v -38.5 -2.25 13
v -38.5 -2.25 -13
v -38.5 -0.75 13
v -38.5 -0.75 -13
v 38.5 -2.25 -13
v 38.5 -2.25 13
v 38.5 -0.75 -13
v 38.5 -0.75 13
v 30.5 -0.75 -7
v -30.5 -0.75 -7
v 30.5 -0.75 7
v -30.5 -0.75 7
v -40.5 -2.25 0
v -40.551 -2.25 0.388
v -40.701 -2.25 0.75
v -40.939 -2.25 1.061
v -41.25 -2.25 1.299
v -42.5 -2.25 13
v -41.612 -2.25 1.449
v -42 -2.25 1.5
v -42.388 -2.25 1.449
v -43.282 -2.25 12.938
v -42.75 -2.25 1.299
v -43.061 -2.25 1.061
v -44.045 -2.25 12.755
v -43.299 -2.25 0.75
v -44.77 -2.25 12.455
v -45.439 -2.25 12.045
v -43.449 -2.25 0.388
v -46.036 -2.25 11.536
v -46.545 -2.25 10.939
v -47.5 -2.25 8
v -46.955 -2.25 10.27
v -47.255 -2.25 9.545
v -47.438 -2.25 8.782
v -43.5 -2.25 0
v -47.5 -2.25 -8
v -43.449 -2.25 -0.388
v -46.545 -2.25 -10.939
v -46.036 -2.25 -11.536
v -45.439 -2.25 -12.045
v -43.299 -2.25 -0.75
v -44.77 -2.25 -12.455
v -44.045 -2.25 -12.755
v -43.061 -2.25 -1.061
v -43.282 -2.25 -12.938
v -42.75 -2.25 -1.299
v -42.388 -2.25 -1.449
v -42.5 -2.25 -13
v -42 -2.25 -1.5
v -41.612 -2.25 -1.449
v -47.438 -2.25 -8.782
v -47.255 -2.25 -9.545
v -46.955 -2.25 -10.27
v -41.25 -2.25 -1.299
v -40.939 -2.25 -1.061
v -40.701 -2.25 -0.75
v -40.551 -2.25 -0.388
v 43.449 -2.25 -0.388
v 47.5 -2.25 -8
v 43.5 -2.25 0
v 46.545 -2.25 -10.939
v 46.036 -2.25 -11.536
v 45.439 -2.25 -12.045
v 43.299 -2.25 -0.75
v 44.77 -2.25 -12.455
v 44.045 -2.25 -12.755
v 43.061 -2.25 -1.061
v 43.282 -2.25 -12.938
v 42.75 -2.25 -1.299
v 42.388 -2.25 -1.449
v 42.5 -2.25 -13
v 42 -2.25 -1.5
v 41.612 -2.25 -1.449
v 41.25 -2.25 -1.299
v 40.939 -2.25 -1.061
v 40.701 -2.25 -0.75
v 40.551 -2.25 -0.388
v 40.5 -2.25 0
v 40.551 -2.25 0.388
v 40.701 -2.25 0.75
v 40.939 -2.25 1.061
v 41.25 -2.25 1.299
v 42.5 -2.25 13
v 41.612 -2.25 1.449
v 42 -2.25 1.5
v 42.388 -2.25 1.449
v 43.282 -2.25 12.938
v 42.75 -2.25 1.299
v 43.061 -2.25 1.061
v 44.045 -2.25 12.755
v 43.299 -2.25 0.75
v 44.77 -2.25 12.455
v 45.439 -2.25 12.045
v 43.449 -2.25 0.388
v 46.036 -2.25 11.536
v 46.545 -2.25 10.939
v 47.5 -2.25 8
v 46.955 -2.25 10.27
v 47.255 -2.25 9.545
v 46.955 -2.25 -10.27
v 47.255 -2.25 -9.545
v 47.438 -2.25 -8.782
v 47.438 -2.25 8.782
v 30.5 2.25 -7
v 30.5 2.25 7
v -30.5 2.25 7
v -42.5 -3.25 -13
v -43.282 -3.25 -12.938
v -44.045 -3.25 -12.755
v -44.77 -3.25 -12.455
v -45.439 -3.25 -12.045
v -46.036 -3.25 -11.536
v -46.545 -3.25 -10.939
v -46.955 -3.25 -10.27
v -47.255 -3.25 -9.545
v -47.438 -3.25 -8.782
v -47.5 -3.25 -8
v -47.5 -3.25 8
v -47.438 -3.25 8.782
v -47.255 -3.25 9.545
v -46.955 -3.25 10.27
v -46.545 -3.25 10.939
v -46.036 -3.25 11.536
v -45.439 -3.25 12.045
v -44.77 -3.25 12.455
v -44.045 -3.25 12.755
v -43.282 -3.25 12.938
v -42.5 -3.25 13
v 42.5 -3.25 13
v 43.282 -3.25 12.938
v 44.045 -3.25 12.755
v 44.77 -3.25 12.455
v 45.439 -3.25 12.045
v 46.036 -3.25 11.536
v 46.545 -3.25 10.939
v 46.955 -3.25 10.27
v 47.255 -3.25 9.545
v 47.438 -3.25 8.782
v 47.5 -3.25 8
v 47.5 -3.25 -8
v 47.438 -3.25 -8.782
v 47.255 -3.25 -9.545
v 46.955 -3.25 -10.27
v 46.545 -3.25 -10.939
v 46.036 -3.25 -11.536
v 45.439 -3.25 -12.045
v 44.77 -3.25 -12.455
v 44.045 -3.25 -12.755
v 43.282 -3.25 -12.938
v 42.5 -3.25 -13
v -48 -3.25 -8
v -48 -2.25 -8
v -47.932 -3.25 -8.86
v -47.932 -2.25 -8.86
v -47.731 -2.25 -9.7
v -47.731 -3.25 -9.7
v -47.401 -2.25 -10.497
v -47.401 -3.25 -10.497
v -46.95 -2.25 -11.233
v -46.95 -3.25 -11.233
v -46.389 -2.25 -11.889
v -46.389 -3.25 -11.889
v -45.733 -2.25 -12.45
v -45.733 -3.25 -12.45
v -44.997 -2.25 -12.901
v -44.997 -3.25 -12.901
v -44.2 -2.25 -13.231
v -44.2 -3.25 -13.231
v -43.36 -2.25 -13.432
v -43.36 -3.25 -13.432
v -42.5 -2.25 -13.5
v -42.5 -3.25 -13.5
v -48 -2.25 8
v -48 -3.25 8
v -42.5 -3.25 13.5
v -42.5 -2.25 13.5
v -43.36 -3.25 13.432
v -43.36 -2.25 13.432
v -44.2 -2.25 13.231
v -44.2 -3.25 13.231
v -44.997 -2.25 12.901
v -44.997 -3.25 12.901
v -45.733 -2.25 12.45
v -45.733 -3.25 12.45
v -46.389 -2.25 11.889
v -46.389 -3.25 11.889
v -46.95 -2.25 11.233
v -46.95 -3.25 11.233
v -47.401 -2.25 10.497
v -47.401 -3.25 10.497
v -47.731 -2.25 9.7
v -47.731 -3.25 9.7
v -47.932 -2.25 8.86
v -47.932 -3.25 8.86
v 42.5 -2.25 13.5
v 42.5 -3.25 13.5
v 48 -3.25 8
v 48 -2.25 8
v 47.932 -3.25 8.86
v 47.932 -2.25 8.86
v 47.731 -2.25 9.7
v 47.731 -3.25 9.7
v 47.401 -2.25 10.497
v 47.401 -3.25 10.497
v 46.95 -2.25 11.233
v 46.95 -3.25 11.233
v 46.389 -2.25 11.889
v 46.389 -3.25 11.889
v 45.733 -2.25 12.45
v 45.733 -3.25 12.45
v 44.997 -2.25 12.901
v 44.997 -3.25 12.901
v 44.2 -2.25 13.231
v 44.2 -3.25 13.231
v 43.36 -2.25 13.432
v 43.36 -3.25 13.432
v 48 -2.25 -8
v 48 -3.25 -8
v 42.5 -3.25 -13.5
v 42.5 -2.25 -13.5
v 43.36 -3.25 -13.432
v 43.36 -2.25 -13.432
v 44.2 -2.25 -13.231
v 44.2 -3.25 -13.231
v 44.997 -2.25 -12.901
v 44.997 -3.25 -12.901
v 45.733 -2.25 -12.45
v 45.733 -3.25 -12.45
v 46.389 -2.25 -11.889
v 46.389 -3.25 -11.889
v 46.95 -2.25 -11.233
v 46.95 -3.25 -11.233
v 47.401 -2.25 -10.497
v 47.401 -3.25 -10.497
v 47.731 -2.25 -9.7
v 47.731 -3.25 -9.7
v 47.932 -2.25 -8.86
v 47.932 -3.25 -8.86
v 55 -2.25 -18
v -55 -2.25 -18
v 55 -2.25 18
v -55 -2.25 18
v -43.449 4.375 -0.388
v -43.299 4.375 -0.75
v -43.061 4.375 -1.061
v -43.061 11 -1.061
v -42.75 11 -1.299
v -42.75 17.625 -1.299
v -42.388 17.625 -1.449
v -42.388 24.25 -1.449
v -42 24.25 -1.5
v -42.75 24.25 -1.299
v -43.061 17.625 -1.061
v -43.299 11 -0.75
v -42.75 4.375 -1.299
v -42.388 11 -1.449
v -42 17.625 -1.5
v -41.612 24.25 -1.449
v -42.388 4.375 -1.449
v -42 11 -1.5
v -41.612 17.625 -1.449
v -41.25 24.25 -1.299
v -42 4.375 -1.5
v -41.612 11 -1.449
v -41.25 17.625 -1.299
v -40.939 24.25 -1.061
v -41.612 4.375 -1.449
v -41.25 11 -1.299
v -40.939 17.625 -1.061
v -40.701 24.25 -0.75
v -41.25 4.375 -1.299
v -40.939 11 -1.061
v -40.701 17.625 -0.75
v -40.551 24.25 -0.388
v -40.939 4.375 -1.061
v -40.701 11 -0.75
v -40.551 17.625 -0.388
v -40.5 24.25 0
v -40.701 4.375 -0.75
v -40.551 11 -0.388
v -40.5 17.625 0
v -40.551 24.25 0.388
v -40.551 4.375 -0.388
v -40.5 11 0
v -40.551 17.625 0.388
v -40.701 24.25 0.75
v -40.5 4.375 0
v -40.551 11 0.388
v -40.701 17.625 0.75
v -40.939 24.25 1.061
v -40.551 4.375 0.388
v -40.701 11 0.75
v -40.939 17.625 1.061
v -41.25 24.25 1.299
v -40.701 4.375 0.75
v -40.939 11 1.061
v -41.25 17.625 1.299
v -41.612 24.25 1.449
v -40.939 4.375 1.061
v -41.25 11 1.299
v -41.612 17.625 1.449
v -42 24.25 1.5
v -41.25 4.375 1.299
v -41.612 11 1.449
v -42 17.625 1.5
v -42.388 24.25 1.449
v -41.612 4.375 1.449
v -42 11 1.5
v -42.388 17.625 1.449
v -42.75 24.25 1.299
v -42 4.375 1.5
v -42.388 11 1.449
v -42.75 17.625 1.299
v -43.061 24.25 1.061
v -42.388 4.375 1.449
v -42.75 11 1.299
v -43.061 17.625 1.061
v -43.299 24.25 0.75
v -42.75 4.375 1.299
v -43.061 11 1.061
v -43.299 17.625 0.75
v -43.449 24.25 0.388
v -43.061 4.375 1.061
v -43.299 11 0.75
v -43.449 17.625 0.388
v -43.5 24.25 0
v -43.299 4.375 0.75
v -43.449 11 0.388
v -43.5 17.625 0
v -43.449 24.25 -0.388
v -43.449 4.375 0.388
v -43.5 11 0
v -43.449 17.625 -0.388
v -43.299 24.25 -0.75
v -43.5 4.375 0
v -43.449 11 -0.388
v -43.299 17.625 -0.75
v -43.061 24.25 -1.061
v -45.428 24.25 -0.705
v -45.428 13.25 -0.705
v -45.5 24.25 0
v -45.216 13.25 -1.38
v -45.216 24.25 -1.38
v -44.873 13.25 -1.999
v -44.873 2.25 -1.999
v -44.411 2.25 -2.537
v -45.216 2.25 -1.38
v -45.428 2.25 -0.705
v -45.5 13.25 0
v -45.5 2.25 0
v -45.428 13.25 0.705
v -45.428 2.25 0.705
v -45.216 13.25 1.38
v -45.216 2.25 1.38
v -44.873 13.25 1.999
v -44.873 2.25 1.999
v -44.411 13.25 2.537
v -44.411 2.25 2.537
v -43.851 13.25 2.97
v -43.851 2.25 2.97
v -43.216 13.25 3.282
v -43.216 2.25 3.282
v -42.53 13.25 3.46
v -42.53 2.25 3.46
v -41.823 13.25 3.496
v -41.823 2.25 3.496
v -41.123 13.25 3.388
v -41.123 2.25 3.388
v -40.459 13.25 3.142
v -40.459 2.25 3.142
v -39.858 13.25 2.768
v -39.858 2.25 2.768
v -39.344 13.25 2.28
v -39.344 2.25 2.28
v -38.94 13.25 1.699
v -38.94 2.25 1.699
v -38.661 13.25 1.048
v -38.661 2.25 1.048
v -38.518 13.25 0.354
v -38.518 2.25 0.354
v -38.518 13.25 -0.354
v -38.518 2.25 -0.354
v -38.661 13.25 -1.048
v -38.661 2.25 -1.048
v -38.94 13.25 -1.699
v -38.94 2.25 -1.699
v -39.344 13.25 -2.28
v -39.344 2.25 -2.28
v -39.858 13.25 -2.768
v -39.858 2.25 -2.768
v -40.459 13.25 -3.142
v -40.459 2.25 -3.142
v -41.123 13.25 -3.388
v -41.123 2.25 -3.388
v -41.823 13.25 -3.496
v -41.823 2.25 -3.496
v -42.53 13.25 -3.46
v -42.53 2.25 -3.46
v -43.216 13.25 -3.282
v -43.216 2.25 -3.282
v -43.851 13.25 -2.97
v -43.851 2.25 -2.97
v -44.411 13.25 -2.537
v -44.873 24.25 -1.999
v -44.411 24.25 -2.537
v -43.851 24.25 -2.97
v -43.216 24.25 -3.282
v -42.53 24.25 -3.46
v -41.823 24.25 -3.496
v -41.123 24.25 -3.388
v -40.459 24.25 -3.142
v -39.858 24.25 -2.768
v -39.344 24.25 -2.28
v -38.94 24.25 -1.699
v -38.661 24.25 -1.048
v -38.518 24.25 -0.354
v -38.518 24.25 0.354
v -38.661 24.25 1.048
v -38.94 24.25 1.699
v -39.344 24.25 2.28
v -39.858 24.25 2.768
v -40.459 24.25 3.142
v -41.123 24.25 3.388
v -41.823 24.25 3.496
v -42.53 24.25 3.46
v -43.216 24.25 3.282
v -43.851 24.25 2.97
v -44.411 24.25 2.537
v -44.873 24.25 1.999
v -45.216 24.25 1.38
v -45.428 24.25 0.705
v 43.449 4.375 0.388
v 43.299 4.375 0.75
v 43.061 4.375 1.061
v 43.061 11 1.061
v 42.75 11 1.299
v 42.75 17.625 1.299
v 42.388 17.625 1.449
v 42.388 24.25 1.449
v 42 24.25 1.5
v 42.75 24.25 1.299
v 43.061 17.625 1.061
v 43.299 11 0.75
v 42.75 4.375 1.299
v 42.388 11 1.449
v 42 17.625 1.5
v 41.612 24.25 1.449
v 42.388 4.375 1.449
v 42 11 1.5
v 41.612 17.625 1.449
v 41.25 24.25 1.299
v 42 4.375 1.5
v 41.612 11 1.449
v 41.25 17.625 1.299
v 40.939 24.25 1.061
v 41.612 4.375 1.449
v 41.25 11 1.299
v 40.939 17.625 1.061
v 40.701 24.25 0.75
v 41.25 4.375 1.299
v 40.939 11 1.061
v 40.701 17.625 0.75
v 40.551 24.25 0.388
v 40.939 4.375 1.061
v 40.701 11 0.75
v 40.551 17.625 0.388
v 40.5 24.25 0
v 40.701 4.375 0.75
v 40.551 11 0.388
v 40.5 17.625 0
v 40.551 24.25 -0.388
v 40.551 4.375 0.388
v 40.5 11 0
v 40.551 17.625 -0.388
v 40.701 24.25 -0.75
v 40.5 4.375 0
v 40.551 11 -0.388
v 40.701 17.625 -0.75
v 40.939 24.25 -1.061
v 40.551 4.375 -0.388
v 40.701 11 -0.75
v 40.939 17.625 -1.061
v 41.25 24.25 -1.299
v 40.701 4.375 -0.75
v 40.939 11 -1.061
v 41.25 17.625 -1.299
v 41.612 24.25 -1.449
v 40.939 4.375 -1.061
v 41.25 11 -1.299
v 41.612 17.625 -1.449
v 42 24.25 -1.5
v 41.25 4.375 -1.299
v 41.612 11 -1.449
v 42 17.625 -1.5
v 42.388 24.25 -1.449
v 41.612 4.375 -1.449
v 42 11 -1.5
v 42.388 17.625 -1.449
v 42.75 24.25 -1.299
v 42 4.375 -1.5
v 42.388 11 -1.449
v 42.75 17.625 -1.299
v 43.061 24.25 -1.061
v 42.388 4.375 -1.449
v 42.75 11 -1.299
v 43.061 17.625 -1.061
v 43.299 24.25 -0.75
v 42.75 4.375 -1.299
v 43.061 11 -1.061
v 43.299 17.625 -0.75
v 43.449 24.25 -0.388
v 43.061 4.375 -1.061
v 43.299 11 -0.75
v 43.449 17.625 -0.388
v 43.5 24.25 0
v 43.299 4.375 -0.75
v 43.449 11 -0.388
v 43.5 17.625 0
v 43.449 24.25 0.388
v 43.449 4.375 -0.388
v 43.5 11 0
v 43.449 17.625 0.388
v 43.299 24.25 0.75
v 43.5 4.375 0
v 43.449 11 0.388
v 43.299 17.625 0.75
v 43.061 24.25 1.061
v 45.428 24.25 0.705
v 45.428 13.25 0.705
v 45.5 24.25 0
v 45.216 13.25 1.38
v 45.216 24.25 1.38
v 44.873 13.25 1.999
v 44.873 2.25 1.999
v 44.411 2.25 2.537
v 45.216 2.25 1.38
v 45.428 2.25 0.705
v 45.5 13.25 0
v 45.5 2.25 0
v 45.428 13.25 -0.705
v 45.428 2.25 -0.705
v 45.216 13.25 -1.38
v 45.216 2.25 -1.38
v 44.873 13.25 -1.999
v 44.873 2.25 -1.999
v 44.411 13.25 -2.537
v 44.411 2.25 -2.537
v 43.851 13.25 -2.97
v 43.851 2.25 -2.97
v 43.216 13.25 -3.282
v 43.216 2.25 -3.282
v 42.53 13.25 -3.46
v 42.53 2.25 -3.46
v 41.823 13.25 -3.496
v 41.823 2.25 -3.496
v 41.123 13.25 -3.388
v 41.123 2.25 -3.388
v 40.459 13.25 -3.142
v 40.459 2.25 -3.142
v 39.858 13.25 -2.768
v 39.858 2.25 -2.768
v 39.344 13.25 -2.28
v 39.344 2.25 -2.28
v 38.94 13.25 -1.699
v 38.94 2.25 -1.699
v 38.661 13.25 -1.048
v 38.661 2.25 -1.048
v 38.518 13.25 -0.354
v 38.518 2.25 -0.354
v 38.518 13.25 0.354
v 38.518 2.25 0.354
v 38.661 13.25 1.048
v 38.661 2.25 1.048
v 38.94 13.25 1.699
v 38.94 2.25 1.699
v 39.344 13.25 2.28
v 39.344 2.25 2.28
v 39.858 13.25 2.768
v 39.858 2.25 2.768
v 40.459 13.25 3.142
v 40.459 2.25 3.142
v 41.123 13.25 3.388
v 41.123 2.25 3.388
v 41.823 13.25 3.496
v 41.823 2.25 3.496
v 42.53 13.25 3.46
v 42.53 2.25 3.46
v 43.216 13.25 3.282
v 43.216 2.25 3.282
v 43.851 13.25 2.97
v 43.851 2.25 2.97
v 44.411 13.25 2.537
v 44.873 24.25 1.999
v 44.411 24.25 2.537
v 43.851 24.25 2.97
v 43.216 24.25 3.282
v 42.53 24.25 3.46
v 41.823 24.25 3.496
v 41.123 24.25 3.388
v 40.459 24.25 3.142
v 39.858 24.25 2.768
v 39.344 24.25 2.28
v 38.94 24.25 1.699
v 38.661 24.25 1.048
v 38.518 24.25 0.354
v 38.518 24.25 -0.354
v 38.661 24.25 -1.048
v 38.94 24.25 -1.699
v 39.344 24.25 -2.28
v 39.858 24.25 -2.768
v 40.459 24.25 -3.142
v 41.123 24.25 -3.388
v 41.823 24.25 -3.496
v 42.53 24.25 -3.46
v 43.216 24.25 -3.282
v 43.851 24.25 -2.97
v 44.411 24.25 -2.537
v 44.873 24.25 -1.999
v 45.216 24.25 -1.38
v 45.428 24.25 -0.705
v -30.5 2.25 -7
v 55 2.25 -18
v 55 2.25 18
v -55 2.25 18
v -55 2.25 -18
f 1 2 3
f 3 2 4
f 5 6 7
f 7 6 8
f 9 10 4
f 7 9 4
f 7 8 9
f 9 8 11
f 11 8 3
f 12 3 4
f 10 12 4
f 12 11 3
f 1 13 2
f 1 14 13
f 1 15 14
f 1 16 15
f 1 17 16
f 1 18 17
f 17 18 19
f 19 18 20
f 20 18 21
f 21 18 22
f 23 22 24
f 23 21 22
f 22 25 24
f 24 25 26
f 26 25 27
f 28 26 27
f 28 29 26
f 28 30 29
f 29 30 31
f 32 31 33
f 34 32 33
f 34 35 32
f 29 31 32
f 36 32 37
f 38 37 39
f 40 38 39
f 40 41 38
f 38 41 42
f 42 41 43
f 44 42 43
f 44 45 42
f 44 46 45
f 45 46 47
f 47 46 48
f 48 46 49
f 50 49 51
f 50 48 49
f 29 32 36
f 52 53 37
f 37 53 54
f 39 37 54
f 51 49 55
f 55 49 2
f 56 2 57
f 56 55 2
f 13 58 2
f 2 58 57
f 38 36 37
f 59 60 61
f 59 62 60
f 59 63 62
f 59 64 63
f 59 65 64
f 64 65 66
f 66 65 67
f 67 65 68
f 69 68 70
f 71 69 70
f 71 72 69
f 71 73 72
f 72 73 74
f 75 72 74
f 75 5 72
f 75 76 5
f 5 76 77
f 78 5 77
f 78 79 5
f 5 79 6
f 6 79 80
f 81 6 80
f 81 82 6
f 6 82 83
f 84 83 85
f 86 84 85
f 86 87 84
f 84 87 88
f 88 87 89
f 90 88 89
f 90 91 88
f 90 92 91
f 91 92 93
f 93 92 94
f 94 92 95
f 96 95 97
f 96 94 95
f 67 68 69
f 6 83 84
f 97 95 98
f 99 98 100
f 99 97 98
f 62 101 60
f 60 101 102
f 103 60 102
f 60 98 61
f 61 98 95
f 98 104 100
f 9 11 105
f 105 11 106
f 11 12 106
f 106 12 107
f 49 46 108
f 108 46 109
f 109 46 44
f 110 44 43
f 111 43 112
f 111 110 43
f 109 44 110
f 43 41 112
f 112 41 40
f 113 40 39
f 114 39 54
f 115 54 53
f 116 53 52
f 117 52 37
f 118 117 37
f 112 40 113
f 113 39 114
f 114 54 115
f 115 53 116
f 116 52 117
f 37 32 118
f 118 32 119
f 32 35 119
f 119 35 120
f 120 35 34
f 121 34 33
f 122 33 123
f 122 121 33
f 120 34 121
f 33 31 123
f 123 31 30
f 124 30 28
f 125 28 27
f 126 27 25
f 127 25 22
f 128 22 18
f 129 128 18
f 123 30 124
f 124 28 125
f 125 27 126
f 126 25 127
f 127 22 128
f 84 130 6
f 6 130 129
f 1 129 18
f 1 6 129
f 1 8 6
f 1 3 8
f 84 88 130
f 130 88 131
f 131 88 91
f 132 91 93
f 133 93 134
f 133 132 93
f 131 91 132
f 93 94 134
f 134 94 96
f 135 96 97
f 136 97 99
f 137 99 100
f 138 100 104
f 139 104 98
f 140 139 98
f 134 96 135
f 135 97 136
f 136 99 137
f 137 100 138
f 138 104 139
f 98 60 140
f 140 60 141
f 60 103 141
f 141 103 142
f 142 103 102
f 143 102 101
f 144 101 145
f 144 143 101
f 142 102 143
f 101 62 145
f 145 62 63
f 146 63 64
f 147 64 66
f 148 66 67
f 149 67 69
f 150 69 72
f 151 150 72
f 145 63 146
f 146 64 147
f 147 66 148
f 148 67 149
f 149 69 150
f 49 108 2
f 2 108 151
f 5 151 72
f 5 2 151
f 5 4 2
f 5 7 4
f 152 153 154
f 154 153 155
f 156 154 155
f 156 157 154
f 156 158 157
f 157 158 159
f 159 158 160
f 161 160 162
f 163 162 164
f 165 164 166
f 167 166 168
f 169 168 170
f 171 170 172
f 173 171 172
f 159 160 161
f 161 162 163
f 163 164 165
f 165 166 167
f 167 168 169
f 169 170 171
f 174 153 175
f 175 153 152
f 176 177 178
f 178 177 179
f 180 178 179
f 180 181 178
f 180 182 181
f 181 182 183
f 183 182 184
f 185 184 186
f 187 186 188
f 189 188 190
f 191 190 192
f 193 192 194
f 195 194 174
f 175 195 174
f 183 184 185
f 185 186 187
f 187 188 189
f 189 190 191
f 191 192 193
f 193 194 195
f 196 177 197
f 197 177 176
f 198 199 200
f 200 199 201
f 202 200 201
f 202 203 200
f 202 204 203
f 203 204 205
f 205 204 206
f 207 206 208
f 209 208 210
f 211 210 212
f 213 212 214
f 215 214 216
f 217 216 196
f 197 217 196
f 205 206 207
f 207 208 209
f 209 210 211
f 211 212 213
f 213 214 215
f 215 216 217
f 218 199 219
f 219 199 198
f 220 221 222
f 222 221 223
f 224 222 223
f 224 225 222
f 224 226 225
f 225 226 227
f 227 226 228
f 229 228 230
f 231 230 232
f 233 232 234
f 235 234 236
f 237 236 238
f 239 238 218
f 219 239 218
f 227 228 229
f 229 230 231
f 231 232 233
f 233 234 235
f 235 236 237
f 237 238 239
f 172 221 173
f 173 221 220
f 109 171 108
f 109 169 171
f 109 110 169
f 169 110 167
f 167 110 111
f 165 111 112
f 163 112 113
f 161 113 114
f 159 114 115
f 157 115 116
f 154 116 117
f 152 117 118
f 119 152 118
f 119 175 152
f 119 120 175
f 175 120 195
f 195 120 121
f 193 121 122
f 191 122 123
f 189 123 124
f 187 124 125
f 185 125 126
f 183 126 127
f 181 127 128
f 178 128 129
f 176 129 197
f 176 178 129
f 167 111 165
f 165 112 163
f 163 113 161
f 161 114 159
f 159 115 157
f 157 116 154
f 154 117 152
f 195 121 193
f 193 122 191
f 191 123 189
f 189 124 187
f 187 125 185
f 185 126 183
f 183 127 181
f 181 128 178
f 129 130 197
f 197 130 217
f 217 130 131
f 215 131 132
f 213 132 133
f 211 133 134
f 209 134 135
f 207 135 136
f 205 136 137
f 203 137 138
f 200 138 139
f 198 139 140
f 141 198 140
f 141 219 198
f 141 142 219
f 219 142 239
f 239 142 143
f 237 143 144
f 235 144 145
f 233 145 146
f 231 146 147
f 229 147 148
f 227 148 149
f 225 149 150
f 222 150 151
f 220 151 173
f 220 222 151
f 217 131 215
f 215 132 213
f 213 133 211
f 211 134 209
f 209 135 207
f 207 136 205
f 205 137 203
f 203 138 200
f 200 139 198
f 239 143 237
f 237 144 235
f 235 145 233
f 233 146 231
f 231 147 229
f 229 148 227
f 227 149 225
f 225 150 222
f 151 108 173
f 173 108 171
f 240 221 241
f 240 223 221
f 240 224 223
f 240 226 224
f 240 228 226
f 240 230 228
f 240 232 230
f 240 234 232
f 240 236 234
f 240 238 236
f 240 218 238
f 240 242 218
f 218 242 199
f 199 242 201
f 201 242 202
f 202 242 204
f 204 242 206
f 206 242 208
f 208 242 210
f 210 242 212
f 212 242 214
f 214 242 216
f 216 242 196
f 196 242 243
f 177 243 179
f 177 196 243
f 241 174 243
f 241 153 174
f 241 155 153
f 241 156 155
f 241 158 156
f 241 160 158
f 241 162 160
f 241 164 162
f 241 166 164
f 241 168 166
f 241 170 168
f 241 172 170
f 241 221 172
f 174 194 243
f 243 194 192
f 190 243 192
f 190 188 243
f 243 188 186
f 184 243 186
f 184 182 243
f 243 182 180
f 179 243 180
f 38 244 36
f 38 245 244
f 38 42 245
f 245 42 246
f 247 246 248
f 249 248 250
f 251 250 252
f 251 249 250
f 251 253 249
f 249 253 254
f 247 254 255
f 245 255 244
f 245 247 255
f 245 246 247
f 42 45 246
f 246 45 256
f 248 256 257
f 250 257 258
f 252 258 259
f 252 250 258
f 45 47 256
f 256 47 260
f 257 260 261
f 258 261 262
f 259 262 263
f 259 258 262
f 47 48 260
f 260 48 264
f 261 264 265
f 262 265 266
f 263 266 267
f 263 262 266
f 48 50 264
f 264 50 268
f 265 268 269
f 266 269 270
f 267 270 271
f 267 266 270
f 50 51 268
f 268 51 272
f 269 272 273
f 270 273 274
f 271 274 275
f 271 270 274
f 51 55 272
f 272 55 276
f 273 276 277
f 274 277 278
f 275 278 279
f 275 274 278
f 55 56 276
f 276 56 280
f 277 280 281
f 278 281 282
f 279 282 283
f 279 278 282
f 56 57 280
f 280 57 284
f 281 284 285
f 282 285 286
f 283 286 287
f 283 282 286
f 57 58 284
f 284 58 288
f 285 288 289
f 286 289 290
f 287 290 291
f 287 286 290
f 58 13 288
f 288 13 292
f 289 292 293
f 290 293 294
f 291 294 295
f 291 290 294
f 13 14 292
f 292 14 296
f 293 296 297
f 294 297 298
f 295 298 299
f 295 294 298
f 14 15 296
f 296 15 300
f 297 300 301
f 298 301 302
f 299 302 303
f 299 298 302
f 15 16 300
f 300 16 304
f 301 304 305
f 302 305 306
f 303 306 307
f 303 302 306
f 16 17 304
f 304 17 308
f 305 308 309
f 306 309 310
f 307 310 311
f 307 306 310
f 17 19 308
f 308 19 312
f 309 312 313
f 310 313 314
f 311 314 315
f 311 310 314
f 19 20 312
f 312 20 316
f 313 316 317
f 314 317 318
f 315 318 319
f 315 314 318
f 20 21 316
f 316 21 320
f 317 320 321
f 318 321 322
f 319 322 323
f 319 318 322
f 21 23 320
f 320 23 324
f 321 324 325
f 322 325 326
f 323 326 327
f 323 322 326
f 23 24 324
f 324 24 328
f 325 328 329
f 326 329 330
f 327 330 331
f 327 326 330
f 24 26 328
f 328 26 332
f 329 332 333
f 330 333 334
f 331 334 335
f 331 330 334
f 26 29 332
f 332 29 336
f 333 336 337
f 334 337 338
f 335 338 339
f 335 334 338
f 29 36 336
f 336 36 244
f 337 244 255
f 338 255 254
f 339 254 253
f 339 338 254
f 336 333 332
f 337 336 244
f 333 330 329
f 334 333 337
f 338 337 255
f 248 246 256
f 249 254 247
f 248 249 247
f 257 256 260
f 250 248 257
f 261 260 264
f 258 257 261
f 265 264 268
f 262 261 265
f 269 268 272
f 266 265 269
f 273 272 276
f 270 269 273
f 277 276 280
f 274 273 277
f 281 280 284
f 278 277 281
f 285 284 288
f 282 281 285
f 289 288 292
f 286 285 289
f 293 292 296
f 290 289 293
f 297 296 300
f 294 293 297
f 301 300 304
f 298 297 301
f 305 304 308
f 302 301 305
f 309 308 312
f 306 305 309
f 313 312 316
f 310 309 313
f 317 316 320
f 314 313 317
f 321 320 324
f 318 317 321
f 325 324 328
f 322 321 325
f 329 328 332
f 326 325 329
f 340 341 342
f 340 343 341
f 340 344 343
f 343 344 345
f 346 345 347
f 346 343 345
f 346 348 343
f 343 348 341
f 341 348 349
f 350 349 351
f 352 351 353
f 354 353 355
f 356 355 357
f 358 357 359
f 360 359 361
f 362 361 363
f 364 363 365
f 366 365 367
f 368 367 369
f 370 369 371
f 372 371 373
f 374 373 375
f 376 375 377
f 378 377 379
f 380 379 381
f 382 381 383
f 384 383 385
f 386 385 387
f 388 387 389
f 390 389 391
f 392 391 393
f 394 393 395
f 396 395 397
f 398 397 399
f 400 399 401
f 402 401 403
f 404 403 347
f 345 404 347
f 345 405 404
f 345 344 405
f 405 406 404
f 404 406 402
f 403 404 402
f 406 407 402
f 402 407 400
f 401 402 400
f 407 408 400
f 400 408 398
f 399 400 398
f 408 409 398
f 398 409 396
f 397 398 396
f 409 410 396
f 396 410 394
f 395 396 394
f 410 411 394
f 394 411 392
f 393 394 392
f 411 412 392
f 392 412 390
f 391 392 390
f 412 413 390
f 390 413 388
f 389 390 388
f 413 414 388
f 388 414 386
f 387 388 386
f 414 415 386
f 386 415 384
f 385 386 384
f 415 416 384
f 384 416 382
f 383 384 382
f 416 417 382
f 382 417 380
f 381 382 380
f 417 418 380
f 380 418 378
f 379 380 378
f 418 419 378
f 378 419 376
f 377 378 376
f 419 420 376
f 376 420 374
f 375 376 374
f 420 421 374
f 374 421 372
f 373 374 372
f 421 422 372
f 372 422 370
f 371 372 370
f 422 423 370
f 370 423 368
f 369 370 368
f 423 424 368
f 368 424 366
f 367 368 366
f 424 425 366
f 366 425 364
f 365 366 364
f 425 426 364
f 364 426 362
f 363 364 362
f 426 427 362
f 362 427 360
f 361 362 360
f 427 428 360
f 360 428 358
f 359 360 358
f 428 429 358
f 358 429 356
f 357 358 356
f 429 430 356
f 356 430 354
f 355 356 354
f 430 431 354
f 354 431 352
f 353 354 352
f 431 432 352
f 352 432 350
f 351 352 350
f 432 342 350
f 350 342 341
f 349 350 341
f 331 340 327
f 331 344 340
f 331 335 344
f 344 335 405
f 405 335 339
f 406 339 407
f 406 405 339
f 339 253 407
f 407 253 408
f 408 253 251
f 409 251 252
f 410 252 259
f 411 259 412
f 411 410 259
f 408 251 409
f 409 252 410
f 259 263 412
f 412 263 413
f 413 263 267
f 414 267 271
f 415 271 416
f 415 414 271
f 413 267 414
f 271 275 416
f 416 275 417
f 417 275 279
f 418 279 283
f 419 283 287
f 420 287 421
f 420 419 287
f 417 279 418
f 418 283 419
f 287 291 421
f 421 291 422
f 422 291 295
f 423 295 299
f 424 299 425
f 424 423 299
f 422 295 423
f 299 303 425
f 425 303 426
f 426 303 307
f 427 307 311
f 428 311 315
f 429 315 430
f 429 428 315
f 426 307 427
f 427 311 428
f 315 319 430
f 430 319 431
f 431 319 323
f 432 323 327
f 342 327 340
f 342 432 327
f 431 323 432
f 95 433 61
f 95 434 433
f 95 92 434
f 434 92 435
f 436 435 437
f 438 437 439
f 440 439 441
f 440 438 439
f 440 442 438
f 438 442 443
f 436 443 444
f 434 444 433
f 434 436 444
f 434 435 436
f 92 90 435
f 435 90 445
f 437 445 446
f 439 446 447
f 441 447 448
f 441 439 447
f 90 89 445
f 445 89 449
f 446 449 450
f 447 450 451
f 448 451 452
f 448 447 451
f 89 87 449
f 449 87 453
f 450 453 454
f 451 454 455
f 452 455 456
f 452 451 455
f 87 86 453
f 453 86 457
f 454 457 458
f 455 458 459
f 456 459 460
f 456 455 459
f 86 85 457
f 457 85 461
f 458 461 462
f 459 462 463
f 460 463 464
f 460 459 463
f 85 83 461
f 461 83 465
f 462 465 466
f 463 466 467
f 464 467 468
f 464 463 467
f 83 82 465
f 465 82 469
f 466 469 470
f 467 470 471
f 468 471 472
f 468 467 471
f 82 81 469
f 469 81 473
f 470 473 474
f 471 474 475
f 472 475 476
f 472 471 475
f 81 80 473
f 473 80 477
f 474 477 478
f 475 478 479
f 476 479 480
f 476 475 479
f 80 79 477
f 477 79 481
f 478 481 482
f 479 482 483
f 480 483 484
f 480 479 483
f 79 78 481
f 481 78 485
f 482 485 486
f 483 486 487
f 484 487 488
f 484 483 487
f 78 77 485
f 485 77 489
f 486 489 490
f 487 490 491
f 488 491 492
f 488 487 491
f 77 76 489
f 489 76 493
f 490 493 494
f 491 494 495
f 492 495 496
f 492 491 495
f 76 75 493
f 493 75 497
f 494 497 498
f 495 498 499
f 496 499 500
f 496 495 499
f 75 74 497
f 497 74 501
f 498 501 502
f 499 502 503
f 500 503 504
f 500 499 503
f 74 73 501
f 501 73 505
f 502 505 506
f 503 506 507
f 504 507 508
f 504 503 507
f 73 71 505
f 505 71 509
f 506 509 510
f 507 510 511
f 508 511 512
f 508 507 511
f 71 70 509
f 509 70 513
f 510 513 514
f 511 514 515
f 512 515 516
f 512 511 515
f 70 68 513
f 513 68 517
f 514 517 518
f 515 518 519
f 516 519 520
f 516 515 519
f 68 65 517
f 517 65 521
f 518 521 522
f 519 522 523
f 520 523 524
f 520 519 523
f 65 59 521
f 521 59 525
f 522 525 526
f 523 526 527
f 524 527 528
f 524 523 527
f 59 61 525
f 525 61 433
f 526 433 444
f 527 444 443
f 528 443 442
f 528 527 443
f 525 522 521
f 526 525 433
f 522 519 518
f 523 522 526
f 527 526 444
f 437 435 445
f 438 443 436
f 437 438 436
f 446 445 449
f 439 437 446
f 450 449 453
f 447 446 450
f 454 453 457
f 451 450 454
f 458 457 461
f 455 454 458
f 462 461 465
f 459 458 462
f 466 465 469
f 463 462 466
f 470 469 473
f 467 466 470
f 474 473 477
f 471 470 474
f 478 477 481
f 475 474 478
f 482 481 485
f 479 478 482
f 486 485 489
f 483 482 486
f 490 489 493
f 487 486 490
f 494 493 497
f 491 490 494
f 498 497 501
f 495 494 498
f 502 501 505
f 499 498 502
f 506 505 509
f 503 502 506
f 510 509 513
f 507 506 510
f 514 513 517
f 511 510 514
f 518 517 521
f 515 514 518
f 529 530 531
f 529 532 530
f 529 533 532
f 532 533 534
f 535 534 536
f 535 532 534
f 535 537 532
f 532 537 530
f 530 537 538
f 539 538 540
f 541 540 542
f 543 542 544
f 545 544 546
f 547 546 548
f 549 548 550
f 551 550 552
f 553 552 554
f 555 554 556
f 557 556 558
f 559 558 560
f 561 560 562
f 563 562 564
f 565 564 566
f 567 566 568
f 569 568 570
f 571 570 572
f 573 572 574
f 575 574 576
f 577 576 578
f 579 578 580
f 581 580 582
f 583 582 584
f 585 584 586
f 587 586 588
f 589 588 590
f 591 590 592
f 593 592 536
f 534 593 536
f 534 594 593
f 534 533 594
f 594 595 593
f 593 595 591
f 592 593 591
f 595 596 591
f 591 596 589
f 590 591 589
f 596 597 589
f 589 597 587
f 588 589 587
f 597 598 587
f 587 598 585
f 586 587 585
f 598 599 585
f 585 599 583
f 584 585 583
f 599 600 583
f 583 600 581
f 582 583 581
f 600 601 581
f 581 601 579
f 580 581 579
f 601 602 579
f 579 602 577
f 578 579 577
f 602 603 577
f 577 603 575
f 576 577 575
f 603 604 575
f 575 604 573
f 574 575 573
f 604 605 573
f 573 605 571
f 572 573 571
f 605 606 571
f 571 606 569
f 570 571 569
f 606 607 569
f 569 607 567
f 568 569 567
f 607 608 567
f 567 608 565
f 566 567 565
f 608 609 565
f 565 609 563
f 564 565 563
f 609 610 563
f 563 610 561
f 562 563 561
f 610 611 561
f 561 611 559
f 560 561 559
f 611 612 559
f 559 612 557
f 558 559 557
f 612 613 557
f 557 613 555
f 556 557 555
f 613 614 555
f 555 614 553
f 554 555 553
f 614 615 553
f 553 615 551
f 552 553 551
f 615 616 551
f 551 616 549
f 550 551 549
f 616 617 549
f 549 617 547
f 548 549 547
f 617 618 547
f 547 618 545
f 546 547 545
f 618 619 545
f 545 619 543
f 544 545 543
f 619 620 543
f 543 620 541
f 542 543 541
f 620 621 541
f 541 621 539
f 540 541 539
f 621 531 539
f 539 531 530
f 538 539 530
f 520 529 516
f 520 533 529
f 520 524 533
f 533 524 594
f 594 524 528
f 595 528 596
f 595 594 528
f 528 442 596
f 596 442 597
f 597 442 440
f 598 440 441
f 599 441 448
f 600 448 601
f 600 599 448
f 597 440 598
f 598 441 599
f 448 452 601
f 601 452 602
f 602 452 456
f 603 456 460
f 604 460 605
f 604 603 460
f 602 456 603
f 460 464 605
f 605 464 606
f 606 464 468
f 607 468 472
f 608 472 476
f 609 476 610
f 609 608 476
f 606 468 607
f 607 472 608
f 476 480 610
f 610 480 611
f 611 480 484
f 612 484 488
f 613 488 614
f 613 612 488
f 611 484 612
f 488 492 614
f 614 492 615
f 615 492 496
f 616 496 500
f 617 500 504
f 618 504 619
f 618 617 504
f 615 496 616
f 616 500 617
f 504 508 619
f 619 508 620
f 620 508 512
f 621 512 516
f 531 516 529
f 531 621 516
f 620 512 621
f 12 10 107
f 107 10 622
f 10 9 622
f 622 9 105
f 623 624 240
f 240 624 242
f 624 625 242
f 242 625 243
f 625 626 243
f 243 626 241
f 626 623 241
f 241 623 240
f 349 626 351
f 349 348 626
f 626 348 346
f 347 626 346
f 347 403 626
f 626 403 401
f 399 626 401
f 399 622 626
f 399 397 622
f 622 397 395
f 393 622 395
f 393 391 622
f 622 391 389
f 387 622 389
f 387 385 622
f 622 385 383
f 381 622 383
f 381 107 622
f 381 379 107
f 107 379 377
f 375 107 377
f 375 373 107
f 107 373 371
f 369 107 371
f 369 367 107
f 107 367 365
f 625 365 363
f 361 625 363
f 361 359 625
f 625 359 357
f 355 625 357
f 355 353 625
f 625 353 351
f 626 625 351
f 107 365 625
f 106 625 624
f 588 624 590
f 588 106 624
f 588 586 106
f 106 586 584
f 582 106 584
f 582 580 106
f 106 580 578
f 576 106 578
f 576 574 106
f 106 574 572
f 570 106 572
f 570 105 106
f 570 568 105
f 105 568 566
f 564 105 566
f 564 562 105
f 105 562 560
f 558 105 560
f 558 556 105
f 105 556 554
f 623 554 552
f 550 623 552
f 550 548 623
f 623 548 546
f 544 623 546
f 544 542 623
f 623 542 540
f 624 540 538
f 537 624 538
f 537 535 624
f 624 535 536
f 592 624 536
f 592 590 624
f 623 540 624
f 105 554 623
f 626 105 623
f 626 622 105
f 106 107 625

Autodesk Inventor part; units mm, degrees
ref_plane "YZ Plane" through (0, 0, 0) normal (1, 0, 0) x (0, 1, 0)
ref_plane "XZ Plane" through (0, 0, 0) normal (0, 1, 0) x (-1, 0, 0)
ref_plane "XY Plane" through (0, 0, 0) normal (0, 0, 1) x (1, 0, 0)
sketch "Sketch1" plane through (0, 0, 0) normal (0, 1, 0) x (-1, 0, 0)
  line L0 (55, -18) -> (-55, -18)
  line L1 (-55, -18) -> (-55, 18)
  line L2 (-55, 18) -> (55, 18)
  line L3 (55, 18) -> (55, -18)
  line L4 (55, -18) -> (-55, 18) construction
  line L5 (-55, -18) -> (55, 18) construction
  point P0 (0, 0)
  dimension "d0" = 110
  dimension "d1" = 36
extrude "Body" add sketch "Sketch1" along normal mid plane 4.5
ref_plane "Work Plane4" through (0, 0.75, 0) normal (0, 1, 0) x (1, 0, 0)
sketch "Sketch6" plane through (0, 0.75, 0) normal (0, 1, 0) x (1, 0, 0)
  line L0 (-30.5, 7) -> (30.5, 7)
  line L1 (30.5, 7) -> (30.5, -7)
  line L2 (30.5, -7) -> (-30.5, -7)
  line L3 (-30.5, -7) -> (-30.5, 7)
  line L4 (-30.5, 7) -> (30.5, -7) construction
  line L5 (30.5, 7) -> (-30.5, -7) construction
  point P0 (0, 0)
  dimension "d15" = 61
  dimension "d16" = 14
extrude "Flow Volume" cut sketch "Sketch6" along normal through all both and the other way through all
sketch "Sketch14" plane through (0, 2.25, 0) normal (0, 1, 0) x (1, 0, 0)
  line L0 (38.5, 18) -> (38.5, -18) projected
  line L1 (38.5, 0) -> (55, 0)
  line L2 (55, 18) -> (55, -18) projected
  circle A0 centre (42, 0) radius 3.5
  point P0 (0, 0)
  dimension "d37" = 7
extrude "Inlet" add sketch "Sketch14" along normal blind 22
sketch "Sketch15" plane through (42, 24.25, 0) normal (0, 1, 0) x (1, 0, 0)
  circle A0 centre (0, 0) radius 1.5
  circle A1 centre (0, 0) radius 3.5 projected
  point P0 (-42, 0)
  dimension "d40" = 3
extrude "Inlet Hole" cut sketch "Sketch15" against normal through all contours A0
ref_plane "Work Plane1" through (0, 0.75, 18) normal (-1, 0, 0) x (0, 0, -1)
mirror "Outlet" about plane through (0, 0.75, 18) normal (-1, 0, 0) of "Inlet", "Inlet Hole"
sketch "Sketch22" plane through (0, -2.25, 0) normal (0, -1, 0) x (1, 0, 0)
  line L0 (-42.5, -13) -> (42.5, -13)
  line L1 (47.5, -8) -> (47.5, 8)
  line L2 (42.5, 13) -> (-42.5, 13)
  line L3 (-47.5, 8) -> (-47.5, -8)
  line L4 (-47.5, -13) -> (47.5, 13) construction
  line L5 (47.5, -13) -> (-47.5, 13) construction
  line L6 (-42.5, -13.5) -> (42.5, -13.5)
  line L7 (48, -8) -> (48, 8)
  line L8 (42.5, 13.5) -> (-42.5, 13.5)
  line L9 (-48, 8) -> (-48, -8)
  line L10 (-48, -13.5) -> (48, 13.5) construction
  line L11 (48, -13.5) -> (-48, 13.5) construction
  arc A0 (-47.5, -8) -> (-42.5, -13) centre (-42.5, -8) ccw
  arc A1 (42.5, -13) -> (47.5, -8) centre (42.5, -8) ccw
  arc A2 (47.5, 8) -> (42.5, 13) centre (42.5, 8) ccw
  arc A3 (-42.5, 13) -> (-47.5, 8) centre (-42.5, 8) ccw
  arc A4 (-48, -8) -> (-42.5, -13.5) centre (-42.5, -8) ccw
  arc A5 (42.5, -13.5) -> (48, -8) centre (42.5, -8) ccw
  arc A6 (48, 8) -> (42.5, 13.5) centre (42.5, 8) ccw
  arc A7 (-42.5, 13.5) -> (-48, 8) centre (-42.5, 8) ccw
  point P0 (0, 0)
  dimension "d56" = 95
  dimension "d57" = 26
  dimension "d58" = 0.5
  dimension "d59" = 0.5
  dimension "d60" = 5
  dimension "d61" = 5.5
extrude "Knife Edge" add sketch "Sketch22" along normal blind 1
sketch "Sketch23" plane through (0, -2.25, 0) normal (0, -1, 0) x (1, 0, 0)
  line L0 (38.5, 13) -> (-38.5, 13)
  line L1 (-38.5, 13) -> (-38.5, -13)
  line L2 (-38.5, -13) -> (38.5, -13)
  line L3 (38.5, -13) -> (38.5, 13)
  line L4 (38.5, 13) -> (-38.5, -13) construction
  line L5 (-38.5, 13) -> (38.5, -13) construction
  line L6 (-42.5, -13) -> (42.5, -13) projected
  point P0 (0, 0)
  dimension "d64" = 77
extrude "Extrusion14" cut sketch "Sketch23" against normal blind 1.5
properties part number "Top 6_7"
